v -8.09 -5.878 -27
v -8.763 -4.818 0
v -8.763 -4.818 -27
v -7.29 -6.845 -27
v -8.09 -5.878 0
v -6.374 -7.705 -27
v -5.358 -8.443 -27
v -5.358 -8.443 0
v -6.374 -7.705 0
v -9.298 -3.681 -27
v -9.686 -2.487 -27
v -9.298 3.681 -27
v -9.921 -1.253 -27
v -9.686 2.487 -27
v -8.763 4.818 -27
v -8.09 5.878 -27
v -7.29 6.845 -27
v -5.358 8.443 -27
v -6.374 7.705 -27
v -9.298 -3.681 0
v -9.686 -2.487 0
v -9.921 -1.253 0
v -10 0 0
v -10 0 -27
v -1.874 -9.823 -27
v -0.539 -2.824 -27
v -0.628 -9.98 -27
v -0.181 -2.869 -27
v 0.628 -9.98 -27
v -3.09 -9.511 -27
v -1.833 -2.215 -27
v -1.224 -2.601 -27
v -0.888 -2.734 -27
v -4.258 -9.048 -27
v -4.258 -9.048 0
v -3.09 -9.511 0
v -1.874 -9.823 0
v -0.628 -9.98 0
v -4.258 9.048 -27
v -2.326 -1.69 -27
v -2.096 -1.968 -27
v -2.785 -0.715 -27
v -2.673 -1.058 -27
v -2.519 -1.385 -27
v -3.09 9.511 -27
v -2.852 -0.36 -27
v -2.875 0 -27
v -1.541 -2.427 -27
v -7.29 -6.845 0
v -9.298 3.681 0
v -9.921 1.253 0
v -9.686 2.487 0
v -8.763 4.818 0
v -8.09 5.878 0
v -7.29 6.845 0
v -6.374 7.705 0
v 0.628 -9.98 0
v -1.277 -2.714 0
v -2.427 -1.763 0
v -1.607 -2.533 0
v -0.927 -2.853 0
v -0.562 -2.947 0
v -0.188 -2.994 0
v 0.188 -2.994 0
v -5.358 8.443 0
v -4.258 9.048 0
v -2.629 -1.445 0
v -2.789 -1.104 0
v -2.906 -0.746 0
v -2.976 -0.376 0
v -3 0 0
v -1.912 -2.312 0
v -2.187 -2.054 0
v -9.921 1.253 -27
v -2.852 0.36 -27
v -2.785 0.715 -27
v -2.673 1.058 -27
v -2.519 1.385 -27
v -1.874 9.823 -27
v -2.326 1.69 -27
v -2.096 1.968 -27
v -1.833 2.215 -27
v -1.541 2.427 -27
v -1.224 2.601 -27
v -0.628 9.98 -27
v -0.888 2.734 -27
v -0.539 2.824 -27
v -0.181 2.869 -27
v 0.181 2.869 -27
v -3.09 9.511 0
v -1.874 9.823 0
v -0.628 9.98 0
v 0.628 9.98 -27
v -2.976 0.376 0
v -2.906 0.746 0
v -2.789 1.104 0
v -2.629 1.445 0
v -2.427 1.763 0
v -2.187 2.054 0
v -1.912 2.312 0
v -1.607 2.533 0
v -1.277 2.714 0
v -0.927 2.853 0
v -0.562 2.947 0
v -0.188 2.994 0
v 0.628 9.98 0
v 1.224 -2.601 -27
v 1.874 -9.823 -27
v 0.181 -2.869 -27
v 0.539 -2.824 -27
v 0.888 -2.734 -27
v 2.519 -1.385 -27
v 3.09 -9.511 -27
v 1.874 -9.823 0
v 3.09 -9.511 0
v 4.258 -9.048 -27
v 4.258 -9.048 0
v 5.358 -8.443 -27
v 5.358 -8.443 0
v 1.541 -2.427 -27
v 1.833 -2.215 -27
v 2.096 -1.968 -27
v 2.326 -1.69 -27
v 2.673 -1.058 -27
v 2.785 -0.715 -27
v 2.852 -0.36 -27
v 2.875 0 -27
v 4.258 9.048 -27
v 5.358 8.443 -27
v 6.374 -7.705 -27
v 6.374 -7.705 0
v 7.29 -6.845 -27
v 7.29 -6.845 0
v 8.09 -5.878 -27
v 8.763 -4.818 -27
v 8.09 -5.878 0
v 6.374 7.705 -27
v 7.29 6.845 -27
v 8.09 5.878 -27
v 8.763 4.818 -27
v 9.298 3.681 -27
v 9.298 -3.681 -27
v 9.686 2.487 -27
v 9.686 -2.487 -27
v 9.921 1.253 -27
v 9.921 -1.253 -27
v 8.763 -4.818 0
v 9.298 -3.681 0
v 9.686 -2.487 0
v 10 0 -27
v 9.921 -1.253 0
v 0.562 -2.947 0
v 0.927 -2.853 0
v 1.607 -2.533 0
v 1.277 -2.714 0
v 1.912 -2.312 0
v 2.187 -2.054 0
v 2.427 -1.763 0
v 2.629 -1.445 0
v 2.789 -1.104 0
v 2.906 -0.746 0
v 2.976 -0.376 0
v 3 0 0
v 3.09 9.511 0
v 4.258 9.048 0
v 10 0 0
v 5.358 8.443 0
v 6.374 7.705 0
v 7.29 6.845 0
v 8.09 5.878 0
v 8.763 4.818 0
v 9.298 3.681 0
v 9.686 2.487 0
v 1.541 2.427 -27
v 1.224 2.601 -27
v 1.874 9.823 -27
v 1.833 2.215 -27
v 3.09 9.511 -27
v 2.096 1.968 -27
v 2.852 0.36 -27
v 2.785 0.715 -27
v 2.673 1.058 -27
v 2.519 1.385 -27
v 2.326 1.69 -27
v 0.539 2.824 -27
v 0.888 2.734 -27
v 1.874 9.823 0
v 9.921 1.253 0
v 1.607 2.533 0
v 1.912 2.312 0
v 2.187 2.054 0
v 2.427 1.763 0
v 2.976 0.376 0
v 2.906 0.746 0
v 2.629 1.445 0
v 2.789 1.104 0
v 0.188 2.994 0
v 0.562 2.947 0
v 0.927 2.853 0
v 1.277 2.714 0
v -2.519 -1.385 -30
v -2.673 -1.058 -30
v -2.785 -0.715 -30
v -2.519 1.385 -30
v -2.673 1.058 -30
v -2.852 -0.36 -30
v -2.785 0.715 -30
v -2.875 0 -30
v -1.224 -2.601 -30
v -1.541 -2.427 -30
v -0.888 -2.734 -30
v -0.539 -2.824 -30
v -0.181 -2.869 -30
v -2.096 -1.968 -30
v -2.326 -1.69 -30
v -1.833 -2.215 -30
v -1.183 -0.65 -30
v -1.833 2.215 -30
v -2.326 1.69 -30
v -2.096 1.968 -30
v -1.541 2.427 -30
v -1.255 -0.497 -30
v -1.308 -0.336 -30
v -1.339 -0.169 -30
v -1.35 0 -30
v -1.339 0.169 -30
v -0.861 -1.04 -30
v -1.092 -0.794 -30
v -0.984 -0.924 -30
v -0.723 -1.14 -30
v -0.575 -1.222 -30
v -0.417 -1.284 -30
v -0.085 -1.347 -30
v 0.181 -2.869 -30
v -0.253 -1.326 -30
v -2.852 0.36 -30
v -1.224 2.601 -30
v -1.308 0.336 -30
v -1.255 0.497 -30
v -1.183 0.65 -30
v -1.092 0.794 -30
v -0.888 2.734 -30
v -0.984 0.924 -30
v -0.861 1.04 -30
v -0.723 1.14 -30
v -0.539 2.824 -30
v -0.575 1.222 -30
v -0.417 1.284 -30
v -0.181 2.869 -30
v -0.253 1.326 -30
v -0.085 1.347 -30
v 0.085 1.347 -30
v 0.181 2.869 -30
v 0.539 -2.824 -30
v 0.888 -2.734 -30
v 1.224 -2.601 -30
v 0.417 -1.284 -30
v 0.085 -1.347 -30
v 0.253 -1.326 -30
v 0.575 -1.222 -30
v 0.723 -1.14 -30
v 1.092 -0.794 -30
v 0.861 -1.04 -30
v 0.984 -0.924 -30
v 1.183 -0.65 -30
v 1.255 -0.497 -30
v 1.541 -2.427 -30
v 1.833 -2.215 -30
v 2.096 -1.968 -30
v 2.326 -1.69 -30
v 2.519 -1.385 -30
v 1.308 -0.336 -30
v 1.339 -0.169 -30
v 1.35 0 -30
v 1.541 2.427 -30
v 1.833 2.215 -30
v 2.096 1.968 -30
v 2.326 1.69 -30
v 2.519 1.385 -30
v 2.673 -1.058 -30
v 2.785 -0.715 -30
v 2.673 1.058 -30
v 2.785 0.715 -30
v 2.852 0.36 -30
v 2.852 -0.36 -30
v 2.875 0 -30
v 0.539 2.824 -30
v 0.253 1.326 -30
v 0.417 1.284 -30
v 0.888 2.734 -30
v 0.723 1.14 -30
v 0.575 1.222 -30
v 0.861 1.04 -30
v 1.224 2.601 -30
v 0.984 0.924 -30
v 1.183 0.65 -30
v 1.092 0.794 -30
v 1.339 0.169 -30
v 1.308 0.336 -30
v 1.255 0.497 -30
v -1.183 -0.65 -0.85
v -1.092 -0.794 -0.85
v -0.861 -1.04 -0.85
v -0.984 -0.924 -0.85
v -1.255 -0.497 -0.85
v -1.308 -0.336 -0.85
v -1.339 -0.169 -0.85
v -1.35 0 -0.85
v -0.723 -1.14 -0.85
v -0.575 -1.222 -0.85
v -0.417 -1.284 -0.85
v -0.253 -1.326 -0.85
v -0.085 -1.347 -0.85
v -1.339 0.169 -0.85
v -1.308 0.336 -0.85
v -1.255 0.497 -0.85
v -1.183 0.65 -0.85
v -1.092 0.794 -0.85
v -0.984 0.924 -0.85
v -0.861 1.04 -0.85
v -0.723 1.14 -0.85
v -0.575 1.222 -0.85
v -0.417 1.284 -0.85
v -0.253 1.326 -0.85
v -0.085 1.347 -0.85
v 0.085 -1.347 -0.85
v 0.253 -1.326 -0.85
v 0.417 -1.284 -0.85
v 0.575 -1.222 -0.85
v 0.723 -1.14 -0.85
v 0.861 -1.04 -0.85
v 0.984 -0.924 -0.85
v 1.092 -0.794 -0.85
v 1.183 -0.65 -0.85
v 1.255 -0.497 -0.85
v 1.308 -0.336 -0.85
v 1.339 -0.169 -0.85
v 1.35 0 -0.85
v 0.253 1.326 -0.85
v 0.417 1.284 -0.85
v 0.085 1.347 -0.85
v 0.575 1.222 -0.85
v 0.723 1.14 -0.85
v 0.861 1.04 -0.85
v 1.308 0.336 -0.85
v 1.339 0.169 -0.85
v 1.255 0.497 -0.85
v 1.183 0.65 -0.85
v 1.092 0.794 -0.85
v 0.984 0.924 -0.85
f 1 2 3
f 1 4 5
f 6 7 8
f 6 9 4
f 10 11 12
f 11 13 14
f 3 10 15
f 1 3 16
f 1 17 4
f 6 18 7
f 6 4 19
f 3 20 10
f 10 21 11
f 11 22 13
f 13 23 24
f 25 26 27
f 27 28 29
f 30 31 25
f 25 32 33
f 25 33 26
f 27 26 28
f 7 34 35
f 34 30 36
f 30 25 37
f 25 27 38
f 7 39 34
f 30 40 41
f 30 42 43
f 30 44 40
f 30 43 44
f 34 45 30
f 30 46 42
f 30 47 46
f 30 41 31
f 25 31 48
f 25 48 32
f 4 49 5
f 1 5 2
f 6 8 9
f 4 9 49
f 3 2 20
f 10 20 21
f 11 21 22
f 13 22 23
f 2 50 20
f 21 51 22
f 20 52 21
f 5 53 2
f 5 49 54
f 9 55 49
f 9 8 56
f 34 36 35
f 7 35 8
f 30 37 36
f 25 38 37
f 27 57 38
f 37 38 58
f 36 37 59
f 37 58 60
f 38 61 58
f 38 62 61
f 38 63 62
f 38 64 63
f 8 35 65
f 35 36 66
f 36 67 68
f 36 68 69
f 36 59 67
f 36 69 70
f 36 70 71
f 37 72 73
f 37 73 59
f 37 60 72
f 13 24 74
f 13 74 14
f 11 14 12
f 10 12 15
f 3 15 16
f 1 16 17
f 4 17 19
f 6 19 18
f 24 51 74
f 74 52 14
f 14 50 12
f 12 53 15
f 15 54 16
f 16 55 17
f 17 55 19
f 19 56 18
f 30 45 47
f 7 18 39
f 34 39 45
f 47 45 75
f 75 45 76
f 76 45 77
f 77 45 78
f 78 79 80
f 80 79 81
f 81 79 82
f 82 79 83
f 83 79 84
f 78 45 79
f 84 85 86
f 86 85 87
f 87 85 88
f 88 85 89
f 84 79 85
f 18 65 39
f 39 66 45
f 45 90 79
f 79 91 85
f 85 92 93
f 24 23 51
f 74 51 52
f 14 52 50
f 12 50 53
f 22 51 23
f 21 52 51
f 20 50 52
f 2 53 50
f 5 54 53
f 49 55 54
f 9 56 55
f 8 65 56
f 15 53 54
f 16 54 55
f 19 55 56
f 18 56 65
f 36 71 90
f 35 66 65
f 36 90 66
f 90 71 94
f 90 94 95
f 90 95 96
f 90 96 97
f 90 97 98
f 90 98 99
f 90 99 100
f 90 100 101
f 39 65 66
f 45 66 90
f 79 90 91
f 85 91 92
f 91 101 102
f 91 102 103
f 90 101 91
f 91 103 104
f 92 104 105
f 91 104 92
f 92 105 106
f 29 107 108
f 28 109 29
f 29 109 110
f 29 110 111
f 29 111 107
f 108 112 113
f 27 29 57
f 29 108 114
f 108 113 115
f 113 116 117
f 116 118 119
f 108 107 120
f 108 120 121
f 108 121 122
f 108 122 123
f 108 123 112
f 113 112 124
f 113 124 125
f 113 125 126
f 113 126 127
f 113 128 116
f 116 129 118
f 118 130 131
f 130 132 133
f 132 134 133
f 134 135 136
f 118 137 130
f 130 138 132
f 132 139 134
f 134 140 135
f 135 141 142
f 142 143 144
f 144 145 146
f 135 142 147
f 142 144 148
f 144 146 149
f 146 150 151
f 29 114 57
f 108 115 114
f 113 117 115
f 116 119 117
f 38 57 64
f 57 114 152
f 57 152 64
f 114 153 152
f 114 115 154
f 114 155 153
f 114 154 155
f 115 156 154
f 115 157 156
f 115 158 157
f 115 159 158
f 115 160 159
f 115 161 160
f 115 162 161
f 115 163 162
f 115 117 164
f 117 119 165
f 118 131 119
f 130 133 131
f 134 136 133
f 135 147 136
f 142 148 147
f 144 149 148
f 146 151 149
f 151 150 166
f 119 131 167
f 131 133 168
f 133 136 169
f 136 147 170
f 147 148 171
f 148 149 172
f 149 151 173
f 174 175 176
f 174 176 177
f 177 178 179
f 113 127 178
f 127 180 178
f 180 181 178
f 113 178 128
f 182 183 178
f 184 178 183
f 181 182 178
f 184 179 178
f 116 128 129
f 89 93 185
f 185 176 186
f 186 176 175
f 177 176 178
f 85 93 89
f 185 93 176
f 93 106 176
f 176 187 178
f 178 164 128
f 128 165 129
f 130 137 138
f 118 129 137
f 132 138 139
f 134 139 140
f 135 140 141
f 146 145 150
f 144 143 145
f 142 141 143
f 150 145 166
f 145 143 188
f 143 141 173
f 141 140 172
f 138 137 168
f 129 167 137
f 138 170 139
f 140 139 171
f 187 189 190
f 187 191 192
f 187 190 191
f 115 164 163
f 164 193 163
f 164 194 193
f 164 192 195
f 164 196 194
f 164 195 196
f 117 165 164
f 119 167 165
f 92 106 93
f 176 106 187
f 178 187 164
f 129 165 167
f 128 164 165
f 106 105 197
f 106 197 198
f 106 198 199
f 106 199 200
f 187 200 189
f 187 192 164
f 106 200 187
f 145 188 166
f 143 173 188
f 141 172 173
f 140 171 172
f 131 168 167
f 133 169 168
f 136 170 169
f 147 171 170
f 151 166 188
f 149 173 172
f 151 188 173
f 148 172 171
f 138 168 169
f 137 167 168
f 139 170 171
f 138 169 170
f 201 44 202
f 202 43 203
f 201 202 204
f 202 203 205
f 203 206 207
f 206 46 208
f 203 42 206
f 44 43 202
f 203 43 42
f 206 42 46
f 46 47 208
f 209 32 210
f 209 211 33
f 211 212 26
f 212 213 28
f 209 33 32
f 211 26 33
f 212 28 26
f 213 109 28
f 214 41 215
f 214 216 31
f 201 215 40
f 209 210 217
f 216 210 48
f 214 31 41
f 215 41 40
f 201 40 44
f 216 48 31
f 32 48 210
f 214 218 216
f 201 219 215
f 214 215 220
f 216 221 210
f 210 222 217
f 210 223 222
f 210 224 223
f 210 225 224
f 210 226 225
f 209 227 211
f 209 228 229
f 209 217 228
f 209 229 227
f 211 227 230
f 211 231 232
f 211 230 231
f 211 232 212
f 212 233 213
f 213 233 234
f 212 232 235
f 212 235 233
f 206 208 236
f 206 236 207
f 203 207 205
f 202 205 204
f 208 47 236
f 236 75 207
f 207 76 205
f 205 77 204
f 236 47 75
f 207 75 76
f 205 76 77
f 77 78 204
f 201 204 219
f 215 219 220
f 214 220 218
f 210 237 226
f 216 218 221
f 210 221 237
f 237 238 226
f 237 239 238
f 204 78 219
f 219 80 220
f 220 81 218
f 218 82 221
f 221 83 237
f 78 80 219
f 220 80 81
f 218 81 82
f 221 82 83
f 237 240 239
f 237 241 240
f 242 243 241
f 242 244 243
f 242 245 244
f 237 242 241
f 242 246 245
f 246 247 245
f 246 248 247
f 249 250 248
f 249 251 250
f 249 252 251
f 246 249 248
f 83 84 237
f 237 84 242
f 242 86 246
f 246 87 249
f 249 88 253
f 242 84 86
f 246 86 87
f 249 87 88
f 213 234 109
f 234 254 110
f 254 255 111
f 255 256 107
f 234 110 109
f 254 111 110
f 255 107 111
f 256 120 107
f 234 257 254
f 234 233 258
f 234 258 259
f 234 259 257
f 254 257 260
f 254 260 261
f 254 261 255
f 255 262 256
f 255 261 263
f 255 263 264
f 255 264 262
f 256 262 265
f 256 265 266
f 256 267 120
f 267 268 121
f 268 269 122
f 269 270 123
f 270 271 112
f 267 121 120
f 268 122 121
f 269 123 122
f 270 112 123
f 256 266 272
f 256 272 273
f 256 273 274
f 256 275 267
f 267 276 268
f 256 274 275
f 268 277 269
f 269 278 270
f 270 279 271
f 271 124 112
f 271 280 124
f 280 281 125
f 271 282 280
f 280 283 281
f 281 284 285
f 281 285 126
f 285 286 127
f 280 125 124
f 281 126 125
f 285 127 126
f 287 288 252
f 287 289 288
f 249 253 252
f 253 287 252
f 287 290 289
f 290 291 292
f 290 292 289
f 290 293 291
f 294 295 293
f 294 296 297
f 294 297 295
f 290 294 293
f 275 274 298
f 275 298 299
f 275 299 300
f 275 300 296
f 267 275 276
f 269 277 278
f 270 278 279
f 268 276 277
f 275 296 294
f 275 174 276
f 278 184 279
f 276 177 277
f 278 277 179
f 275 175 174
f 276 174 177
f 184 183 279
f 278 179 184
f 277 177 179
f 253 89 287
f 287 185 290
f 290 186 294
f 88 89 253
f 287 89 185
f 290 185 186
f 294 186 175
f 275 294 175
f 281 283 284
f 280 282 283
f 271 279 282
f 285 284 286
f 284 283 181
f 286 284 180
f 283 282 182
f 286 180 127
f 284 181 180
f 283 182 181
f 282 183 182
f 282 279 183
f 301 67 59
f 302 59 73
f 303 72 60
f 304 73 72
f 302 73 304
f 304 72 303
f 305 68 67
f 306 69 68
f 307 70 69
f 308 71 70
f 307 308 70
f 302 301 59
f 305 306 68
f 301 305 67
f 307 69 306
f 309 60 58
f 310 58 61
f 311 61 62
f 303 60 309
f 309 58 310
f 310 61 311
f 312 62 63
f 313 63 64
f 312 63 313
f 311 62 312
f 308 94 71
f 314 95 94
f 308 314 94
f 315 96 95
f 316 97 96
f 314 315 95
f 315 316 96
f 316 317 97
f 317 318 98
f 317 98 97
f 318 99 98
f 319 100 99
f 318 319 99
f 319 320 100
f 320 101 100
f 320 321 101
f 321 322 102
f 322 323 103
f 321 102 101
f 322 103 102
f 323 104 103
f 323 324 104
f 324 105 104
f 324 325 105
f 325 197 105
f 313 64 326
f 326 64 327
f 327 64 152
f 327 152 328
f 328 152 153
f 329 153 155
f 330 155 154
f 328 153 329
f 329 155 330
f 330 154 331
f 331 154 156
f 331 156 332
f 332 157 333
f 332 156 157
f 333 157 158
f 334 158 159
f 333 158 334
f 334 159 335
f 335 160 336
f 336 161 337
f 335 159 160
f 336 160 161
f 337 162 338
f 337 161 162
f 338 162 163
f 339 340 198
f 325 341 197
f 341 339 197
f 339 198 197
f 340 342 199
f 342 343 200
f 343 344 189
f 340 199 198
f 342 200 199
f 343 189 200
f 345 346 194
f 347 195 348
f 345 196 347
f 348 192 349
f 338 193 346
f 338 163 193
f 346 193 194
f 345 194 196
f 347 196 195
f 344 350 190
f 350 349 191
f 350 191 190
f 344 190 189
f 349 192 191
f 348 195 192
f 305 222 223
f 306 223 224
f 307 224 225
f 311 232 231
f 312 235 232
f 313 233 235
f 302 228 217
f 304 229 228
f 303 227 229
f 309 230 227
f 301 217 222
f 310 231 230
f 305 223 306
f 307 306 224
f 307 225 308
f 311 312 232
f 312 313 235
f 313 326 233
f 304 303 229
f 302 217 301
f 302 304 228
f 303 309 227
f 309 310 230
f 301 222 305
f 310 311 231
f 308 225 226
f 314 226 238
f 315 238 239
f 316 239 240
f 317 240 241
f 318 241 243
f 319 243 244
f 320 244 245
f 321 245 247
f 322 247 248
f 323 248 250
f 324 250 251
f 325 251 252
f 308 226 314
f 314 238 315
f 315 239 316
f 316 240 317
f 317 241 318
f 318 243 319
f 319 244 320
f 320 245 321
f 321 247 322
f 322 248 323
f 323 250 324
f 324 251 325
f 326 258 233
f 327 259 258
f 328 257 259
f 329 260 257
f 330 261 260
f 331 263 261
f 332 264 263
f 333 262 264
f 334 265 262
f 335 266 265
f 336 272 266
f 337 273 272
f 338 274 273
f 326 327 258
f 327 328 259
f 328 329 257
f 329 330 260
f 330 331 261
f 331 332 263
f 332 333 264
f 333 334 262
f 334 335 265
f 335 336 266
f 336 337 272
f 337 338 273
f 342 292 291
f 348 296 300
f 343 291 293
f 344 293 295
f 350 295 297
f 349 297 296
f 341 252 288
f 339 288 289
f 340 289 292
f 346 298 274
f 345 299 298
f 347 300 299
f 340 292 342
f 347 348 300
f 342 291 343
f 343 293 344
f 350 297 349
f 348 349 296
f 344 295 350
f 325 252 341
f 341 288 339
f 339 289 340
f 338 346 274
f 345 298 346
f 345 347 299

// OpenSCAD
$fn = 50;

difference() {
	union() {
		translate(v = [0, 0, -27.0]) {
			cylinder(h = 27, r = 10.0);
		}
		#translate(v = [0, 0, -30.0]) {
			cylinder(h = 30, r = 2.875);
		}
	}
	union() {
		translate(v = [0, 0, 0]) {
			rotate(a = [0, 0, 0]) {
				difference() {
					union() {
						translate(v = [0, 0, -30.0]) {
							cylinder(h = 30, r = 1.0);
						}
						translate(v = [0, 0, -0.85]) {
							cylinder(h = 0.85, r1 = 1.35, r2 = 3.0);
						}
						translate(v = [0, 0, -30.0]) {
							cylinder(h = 30, r = 1.35);
						}
						translate(v = [0, 0, -30.0]) {
							cylinder(h = 30, r = 1.0);
						}
					}
					union();
				}
			}
		}
	}
}
